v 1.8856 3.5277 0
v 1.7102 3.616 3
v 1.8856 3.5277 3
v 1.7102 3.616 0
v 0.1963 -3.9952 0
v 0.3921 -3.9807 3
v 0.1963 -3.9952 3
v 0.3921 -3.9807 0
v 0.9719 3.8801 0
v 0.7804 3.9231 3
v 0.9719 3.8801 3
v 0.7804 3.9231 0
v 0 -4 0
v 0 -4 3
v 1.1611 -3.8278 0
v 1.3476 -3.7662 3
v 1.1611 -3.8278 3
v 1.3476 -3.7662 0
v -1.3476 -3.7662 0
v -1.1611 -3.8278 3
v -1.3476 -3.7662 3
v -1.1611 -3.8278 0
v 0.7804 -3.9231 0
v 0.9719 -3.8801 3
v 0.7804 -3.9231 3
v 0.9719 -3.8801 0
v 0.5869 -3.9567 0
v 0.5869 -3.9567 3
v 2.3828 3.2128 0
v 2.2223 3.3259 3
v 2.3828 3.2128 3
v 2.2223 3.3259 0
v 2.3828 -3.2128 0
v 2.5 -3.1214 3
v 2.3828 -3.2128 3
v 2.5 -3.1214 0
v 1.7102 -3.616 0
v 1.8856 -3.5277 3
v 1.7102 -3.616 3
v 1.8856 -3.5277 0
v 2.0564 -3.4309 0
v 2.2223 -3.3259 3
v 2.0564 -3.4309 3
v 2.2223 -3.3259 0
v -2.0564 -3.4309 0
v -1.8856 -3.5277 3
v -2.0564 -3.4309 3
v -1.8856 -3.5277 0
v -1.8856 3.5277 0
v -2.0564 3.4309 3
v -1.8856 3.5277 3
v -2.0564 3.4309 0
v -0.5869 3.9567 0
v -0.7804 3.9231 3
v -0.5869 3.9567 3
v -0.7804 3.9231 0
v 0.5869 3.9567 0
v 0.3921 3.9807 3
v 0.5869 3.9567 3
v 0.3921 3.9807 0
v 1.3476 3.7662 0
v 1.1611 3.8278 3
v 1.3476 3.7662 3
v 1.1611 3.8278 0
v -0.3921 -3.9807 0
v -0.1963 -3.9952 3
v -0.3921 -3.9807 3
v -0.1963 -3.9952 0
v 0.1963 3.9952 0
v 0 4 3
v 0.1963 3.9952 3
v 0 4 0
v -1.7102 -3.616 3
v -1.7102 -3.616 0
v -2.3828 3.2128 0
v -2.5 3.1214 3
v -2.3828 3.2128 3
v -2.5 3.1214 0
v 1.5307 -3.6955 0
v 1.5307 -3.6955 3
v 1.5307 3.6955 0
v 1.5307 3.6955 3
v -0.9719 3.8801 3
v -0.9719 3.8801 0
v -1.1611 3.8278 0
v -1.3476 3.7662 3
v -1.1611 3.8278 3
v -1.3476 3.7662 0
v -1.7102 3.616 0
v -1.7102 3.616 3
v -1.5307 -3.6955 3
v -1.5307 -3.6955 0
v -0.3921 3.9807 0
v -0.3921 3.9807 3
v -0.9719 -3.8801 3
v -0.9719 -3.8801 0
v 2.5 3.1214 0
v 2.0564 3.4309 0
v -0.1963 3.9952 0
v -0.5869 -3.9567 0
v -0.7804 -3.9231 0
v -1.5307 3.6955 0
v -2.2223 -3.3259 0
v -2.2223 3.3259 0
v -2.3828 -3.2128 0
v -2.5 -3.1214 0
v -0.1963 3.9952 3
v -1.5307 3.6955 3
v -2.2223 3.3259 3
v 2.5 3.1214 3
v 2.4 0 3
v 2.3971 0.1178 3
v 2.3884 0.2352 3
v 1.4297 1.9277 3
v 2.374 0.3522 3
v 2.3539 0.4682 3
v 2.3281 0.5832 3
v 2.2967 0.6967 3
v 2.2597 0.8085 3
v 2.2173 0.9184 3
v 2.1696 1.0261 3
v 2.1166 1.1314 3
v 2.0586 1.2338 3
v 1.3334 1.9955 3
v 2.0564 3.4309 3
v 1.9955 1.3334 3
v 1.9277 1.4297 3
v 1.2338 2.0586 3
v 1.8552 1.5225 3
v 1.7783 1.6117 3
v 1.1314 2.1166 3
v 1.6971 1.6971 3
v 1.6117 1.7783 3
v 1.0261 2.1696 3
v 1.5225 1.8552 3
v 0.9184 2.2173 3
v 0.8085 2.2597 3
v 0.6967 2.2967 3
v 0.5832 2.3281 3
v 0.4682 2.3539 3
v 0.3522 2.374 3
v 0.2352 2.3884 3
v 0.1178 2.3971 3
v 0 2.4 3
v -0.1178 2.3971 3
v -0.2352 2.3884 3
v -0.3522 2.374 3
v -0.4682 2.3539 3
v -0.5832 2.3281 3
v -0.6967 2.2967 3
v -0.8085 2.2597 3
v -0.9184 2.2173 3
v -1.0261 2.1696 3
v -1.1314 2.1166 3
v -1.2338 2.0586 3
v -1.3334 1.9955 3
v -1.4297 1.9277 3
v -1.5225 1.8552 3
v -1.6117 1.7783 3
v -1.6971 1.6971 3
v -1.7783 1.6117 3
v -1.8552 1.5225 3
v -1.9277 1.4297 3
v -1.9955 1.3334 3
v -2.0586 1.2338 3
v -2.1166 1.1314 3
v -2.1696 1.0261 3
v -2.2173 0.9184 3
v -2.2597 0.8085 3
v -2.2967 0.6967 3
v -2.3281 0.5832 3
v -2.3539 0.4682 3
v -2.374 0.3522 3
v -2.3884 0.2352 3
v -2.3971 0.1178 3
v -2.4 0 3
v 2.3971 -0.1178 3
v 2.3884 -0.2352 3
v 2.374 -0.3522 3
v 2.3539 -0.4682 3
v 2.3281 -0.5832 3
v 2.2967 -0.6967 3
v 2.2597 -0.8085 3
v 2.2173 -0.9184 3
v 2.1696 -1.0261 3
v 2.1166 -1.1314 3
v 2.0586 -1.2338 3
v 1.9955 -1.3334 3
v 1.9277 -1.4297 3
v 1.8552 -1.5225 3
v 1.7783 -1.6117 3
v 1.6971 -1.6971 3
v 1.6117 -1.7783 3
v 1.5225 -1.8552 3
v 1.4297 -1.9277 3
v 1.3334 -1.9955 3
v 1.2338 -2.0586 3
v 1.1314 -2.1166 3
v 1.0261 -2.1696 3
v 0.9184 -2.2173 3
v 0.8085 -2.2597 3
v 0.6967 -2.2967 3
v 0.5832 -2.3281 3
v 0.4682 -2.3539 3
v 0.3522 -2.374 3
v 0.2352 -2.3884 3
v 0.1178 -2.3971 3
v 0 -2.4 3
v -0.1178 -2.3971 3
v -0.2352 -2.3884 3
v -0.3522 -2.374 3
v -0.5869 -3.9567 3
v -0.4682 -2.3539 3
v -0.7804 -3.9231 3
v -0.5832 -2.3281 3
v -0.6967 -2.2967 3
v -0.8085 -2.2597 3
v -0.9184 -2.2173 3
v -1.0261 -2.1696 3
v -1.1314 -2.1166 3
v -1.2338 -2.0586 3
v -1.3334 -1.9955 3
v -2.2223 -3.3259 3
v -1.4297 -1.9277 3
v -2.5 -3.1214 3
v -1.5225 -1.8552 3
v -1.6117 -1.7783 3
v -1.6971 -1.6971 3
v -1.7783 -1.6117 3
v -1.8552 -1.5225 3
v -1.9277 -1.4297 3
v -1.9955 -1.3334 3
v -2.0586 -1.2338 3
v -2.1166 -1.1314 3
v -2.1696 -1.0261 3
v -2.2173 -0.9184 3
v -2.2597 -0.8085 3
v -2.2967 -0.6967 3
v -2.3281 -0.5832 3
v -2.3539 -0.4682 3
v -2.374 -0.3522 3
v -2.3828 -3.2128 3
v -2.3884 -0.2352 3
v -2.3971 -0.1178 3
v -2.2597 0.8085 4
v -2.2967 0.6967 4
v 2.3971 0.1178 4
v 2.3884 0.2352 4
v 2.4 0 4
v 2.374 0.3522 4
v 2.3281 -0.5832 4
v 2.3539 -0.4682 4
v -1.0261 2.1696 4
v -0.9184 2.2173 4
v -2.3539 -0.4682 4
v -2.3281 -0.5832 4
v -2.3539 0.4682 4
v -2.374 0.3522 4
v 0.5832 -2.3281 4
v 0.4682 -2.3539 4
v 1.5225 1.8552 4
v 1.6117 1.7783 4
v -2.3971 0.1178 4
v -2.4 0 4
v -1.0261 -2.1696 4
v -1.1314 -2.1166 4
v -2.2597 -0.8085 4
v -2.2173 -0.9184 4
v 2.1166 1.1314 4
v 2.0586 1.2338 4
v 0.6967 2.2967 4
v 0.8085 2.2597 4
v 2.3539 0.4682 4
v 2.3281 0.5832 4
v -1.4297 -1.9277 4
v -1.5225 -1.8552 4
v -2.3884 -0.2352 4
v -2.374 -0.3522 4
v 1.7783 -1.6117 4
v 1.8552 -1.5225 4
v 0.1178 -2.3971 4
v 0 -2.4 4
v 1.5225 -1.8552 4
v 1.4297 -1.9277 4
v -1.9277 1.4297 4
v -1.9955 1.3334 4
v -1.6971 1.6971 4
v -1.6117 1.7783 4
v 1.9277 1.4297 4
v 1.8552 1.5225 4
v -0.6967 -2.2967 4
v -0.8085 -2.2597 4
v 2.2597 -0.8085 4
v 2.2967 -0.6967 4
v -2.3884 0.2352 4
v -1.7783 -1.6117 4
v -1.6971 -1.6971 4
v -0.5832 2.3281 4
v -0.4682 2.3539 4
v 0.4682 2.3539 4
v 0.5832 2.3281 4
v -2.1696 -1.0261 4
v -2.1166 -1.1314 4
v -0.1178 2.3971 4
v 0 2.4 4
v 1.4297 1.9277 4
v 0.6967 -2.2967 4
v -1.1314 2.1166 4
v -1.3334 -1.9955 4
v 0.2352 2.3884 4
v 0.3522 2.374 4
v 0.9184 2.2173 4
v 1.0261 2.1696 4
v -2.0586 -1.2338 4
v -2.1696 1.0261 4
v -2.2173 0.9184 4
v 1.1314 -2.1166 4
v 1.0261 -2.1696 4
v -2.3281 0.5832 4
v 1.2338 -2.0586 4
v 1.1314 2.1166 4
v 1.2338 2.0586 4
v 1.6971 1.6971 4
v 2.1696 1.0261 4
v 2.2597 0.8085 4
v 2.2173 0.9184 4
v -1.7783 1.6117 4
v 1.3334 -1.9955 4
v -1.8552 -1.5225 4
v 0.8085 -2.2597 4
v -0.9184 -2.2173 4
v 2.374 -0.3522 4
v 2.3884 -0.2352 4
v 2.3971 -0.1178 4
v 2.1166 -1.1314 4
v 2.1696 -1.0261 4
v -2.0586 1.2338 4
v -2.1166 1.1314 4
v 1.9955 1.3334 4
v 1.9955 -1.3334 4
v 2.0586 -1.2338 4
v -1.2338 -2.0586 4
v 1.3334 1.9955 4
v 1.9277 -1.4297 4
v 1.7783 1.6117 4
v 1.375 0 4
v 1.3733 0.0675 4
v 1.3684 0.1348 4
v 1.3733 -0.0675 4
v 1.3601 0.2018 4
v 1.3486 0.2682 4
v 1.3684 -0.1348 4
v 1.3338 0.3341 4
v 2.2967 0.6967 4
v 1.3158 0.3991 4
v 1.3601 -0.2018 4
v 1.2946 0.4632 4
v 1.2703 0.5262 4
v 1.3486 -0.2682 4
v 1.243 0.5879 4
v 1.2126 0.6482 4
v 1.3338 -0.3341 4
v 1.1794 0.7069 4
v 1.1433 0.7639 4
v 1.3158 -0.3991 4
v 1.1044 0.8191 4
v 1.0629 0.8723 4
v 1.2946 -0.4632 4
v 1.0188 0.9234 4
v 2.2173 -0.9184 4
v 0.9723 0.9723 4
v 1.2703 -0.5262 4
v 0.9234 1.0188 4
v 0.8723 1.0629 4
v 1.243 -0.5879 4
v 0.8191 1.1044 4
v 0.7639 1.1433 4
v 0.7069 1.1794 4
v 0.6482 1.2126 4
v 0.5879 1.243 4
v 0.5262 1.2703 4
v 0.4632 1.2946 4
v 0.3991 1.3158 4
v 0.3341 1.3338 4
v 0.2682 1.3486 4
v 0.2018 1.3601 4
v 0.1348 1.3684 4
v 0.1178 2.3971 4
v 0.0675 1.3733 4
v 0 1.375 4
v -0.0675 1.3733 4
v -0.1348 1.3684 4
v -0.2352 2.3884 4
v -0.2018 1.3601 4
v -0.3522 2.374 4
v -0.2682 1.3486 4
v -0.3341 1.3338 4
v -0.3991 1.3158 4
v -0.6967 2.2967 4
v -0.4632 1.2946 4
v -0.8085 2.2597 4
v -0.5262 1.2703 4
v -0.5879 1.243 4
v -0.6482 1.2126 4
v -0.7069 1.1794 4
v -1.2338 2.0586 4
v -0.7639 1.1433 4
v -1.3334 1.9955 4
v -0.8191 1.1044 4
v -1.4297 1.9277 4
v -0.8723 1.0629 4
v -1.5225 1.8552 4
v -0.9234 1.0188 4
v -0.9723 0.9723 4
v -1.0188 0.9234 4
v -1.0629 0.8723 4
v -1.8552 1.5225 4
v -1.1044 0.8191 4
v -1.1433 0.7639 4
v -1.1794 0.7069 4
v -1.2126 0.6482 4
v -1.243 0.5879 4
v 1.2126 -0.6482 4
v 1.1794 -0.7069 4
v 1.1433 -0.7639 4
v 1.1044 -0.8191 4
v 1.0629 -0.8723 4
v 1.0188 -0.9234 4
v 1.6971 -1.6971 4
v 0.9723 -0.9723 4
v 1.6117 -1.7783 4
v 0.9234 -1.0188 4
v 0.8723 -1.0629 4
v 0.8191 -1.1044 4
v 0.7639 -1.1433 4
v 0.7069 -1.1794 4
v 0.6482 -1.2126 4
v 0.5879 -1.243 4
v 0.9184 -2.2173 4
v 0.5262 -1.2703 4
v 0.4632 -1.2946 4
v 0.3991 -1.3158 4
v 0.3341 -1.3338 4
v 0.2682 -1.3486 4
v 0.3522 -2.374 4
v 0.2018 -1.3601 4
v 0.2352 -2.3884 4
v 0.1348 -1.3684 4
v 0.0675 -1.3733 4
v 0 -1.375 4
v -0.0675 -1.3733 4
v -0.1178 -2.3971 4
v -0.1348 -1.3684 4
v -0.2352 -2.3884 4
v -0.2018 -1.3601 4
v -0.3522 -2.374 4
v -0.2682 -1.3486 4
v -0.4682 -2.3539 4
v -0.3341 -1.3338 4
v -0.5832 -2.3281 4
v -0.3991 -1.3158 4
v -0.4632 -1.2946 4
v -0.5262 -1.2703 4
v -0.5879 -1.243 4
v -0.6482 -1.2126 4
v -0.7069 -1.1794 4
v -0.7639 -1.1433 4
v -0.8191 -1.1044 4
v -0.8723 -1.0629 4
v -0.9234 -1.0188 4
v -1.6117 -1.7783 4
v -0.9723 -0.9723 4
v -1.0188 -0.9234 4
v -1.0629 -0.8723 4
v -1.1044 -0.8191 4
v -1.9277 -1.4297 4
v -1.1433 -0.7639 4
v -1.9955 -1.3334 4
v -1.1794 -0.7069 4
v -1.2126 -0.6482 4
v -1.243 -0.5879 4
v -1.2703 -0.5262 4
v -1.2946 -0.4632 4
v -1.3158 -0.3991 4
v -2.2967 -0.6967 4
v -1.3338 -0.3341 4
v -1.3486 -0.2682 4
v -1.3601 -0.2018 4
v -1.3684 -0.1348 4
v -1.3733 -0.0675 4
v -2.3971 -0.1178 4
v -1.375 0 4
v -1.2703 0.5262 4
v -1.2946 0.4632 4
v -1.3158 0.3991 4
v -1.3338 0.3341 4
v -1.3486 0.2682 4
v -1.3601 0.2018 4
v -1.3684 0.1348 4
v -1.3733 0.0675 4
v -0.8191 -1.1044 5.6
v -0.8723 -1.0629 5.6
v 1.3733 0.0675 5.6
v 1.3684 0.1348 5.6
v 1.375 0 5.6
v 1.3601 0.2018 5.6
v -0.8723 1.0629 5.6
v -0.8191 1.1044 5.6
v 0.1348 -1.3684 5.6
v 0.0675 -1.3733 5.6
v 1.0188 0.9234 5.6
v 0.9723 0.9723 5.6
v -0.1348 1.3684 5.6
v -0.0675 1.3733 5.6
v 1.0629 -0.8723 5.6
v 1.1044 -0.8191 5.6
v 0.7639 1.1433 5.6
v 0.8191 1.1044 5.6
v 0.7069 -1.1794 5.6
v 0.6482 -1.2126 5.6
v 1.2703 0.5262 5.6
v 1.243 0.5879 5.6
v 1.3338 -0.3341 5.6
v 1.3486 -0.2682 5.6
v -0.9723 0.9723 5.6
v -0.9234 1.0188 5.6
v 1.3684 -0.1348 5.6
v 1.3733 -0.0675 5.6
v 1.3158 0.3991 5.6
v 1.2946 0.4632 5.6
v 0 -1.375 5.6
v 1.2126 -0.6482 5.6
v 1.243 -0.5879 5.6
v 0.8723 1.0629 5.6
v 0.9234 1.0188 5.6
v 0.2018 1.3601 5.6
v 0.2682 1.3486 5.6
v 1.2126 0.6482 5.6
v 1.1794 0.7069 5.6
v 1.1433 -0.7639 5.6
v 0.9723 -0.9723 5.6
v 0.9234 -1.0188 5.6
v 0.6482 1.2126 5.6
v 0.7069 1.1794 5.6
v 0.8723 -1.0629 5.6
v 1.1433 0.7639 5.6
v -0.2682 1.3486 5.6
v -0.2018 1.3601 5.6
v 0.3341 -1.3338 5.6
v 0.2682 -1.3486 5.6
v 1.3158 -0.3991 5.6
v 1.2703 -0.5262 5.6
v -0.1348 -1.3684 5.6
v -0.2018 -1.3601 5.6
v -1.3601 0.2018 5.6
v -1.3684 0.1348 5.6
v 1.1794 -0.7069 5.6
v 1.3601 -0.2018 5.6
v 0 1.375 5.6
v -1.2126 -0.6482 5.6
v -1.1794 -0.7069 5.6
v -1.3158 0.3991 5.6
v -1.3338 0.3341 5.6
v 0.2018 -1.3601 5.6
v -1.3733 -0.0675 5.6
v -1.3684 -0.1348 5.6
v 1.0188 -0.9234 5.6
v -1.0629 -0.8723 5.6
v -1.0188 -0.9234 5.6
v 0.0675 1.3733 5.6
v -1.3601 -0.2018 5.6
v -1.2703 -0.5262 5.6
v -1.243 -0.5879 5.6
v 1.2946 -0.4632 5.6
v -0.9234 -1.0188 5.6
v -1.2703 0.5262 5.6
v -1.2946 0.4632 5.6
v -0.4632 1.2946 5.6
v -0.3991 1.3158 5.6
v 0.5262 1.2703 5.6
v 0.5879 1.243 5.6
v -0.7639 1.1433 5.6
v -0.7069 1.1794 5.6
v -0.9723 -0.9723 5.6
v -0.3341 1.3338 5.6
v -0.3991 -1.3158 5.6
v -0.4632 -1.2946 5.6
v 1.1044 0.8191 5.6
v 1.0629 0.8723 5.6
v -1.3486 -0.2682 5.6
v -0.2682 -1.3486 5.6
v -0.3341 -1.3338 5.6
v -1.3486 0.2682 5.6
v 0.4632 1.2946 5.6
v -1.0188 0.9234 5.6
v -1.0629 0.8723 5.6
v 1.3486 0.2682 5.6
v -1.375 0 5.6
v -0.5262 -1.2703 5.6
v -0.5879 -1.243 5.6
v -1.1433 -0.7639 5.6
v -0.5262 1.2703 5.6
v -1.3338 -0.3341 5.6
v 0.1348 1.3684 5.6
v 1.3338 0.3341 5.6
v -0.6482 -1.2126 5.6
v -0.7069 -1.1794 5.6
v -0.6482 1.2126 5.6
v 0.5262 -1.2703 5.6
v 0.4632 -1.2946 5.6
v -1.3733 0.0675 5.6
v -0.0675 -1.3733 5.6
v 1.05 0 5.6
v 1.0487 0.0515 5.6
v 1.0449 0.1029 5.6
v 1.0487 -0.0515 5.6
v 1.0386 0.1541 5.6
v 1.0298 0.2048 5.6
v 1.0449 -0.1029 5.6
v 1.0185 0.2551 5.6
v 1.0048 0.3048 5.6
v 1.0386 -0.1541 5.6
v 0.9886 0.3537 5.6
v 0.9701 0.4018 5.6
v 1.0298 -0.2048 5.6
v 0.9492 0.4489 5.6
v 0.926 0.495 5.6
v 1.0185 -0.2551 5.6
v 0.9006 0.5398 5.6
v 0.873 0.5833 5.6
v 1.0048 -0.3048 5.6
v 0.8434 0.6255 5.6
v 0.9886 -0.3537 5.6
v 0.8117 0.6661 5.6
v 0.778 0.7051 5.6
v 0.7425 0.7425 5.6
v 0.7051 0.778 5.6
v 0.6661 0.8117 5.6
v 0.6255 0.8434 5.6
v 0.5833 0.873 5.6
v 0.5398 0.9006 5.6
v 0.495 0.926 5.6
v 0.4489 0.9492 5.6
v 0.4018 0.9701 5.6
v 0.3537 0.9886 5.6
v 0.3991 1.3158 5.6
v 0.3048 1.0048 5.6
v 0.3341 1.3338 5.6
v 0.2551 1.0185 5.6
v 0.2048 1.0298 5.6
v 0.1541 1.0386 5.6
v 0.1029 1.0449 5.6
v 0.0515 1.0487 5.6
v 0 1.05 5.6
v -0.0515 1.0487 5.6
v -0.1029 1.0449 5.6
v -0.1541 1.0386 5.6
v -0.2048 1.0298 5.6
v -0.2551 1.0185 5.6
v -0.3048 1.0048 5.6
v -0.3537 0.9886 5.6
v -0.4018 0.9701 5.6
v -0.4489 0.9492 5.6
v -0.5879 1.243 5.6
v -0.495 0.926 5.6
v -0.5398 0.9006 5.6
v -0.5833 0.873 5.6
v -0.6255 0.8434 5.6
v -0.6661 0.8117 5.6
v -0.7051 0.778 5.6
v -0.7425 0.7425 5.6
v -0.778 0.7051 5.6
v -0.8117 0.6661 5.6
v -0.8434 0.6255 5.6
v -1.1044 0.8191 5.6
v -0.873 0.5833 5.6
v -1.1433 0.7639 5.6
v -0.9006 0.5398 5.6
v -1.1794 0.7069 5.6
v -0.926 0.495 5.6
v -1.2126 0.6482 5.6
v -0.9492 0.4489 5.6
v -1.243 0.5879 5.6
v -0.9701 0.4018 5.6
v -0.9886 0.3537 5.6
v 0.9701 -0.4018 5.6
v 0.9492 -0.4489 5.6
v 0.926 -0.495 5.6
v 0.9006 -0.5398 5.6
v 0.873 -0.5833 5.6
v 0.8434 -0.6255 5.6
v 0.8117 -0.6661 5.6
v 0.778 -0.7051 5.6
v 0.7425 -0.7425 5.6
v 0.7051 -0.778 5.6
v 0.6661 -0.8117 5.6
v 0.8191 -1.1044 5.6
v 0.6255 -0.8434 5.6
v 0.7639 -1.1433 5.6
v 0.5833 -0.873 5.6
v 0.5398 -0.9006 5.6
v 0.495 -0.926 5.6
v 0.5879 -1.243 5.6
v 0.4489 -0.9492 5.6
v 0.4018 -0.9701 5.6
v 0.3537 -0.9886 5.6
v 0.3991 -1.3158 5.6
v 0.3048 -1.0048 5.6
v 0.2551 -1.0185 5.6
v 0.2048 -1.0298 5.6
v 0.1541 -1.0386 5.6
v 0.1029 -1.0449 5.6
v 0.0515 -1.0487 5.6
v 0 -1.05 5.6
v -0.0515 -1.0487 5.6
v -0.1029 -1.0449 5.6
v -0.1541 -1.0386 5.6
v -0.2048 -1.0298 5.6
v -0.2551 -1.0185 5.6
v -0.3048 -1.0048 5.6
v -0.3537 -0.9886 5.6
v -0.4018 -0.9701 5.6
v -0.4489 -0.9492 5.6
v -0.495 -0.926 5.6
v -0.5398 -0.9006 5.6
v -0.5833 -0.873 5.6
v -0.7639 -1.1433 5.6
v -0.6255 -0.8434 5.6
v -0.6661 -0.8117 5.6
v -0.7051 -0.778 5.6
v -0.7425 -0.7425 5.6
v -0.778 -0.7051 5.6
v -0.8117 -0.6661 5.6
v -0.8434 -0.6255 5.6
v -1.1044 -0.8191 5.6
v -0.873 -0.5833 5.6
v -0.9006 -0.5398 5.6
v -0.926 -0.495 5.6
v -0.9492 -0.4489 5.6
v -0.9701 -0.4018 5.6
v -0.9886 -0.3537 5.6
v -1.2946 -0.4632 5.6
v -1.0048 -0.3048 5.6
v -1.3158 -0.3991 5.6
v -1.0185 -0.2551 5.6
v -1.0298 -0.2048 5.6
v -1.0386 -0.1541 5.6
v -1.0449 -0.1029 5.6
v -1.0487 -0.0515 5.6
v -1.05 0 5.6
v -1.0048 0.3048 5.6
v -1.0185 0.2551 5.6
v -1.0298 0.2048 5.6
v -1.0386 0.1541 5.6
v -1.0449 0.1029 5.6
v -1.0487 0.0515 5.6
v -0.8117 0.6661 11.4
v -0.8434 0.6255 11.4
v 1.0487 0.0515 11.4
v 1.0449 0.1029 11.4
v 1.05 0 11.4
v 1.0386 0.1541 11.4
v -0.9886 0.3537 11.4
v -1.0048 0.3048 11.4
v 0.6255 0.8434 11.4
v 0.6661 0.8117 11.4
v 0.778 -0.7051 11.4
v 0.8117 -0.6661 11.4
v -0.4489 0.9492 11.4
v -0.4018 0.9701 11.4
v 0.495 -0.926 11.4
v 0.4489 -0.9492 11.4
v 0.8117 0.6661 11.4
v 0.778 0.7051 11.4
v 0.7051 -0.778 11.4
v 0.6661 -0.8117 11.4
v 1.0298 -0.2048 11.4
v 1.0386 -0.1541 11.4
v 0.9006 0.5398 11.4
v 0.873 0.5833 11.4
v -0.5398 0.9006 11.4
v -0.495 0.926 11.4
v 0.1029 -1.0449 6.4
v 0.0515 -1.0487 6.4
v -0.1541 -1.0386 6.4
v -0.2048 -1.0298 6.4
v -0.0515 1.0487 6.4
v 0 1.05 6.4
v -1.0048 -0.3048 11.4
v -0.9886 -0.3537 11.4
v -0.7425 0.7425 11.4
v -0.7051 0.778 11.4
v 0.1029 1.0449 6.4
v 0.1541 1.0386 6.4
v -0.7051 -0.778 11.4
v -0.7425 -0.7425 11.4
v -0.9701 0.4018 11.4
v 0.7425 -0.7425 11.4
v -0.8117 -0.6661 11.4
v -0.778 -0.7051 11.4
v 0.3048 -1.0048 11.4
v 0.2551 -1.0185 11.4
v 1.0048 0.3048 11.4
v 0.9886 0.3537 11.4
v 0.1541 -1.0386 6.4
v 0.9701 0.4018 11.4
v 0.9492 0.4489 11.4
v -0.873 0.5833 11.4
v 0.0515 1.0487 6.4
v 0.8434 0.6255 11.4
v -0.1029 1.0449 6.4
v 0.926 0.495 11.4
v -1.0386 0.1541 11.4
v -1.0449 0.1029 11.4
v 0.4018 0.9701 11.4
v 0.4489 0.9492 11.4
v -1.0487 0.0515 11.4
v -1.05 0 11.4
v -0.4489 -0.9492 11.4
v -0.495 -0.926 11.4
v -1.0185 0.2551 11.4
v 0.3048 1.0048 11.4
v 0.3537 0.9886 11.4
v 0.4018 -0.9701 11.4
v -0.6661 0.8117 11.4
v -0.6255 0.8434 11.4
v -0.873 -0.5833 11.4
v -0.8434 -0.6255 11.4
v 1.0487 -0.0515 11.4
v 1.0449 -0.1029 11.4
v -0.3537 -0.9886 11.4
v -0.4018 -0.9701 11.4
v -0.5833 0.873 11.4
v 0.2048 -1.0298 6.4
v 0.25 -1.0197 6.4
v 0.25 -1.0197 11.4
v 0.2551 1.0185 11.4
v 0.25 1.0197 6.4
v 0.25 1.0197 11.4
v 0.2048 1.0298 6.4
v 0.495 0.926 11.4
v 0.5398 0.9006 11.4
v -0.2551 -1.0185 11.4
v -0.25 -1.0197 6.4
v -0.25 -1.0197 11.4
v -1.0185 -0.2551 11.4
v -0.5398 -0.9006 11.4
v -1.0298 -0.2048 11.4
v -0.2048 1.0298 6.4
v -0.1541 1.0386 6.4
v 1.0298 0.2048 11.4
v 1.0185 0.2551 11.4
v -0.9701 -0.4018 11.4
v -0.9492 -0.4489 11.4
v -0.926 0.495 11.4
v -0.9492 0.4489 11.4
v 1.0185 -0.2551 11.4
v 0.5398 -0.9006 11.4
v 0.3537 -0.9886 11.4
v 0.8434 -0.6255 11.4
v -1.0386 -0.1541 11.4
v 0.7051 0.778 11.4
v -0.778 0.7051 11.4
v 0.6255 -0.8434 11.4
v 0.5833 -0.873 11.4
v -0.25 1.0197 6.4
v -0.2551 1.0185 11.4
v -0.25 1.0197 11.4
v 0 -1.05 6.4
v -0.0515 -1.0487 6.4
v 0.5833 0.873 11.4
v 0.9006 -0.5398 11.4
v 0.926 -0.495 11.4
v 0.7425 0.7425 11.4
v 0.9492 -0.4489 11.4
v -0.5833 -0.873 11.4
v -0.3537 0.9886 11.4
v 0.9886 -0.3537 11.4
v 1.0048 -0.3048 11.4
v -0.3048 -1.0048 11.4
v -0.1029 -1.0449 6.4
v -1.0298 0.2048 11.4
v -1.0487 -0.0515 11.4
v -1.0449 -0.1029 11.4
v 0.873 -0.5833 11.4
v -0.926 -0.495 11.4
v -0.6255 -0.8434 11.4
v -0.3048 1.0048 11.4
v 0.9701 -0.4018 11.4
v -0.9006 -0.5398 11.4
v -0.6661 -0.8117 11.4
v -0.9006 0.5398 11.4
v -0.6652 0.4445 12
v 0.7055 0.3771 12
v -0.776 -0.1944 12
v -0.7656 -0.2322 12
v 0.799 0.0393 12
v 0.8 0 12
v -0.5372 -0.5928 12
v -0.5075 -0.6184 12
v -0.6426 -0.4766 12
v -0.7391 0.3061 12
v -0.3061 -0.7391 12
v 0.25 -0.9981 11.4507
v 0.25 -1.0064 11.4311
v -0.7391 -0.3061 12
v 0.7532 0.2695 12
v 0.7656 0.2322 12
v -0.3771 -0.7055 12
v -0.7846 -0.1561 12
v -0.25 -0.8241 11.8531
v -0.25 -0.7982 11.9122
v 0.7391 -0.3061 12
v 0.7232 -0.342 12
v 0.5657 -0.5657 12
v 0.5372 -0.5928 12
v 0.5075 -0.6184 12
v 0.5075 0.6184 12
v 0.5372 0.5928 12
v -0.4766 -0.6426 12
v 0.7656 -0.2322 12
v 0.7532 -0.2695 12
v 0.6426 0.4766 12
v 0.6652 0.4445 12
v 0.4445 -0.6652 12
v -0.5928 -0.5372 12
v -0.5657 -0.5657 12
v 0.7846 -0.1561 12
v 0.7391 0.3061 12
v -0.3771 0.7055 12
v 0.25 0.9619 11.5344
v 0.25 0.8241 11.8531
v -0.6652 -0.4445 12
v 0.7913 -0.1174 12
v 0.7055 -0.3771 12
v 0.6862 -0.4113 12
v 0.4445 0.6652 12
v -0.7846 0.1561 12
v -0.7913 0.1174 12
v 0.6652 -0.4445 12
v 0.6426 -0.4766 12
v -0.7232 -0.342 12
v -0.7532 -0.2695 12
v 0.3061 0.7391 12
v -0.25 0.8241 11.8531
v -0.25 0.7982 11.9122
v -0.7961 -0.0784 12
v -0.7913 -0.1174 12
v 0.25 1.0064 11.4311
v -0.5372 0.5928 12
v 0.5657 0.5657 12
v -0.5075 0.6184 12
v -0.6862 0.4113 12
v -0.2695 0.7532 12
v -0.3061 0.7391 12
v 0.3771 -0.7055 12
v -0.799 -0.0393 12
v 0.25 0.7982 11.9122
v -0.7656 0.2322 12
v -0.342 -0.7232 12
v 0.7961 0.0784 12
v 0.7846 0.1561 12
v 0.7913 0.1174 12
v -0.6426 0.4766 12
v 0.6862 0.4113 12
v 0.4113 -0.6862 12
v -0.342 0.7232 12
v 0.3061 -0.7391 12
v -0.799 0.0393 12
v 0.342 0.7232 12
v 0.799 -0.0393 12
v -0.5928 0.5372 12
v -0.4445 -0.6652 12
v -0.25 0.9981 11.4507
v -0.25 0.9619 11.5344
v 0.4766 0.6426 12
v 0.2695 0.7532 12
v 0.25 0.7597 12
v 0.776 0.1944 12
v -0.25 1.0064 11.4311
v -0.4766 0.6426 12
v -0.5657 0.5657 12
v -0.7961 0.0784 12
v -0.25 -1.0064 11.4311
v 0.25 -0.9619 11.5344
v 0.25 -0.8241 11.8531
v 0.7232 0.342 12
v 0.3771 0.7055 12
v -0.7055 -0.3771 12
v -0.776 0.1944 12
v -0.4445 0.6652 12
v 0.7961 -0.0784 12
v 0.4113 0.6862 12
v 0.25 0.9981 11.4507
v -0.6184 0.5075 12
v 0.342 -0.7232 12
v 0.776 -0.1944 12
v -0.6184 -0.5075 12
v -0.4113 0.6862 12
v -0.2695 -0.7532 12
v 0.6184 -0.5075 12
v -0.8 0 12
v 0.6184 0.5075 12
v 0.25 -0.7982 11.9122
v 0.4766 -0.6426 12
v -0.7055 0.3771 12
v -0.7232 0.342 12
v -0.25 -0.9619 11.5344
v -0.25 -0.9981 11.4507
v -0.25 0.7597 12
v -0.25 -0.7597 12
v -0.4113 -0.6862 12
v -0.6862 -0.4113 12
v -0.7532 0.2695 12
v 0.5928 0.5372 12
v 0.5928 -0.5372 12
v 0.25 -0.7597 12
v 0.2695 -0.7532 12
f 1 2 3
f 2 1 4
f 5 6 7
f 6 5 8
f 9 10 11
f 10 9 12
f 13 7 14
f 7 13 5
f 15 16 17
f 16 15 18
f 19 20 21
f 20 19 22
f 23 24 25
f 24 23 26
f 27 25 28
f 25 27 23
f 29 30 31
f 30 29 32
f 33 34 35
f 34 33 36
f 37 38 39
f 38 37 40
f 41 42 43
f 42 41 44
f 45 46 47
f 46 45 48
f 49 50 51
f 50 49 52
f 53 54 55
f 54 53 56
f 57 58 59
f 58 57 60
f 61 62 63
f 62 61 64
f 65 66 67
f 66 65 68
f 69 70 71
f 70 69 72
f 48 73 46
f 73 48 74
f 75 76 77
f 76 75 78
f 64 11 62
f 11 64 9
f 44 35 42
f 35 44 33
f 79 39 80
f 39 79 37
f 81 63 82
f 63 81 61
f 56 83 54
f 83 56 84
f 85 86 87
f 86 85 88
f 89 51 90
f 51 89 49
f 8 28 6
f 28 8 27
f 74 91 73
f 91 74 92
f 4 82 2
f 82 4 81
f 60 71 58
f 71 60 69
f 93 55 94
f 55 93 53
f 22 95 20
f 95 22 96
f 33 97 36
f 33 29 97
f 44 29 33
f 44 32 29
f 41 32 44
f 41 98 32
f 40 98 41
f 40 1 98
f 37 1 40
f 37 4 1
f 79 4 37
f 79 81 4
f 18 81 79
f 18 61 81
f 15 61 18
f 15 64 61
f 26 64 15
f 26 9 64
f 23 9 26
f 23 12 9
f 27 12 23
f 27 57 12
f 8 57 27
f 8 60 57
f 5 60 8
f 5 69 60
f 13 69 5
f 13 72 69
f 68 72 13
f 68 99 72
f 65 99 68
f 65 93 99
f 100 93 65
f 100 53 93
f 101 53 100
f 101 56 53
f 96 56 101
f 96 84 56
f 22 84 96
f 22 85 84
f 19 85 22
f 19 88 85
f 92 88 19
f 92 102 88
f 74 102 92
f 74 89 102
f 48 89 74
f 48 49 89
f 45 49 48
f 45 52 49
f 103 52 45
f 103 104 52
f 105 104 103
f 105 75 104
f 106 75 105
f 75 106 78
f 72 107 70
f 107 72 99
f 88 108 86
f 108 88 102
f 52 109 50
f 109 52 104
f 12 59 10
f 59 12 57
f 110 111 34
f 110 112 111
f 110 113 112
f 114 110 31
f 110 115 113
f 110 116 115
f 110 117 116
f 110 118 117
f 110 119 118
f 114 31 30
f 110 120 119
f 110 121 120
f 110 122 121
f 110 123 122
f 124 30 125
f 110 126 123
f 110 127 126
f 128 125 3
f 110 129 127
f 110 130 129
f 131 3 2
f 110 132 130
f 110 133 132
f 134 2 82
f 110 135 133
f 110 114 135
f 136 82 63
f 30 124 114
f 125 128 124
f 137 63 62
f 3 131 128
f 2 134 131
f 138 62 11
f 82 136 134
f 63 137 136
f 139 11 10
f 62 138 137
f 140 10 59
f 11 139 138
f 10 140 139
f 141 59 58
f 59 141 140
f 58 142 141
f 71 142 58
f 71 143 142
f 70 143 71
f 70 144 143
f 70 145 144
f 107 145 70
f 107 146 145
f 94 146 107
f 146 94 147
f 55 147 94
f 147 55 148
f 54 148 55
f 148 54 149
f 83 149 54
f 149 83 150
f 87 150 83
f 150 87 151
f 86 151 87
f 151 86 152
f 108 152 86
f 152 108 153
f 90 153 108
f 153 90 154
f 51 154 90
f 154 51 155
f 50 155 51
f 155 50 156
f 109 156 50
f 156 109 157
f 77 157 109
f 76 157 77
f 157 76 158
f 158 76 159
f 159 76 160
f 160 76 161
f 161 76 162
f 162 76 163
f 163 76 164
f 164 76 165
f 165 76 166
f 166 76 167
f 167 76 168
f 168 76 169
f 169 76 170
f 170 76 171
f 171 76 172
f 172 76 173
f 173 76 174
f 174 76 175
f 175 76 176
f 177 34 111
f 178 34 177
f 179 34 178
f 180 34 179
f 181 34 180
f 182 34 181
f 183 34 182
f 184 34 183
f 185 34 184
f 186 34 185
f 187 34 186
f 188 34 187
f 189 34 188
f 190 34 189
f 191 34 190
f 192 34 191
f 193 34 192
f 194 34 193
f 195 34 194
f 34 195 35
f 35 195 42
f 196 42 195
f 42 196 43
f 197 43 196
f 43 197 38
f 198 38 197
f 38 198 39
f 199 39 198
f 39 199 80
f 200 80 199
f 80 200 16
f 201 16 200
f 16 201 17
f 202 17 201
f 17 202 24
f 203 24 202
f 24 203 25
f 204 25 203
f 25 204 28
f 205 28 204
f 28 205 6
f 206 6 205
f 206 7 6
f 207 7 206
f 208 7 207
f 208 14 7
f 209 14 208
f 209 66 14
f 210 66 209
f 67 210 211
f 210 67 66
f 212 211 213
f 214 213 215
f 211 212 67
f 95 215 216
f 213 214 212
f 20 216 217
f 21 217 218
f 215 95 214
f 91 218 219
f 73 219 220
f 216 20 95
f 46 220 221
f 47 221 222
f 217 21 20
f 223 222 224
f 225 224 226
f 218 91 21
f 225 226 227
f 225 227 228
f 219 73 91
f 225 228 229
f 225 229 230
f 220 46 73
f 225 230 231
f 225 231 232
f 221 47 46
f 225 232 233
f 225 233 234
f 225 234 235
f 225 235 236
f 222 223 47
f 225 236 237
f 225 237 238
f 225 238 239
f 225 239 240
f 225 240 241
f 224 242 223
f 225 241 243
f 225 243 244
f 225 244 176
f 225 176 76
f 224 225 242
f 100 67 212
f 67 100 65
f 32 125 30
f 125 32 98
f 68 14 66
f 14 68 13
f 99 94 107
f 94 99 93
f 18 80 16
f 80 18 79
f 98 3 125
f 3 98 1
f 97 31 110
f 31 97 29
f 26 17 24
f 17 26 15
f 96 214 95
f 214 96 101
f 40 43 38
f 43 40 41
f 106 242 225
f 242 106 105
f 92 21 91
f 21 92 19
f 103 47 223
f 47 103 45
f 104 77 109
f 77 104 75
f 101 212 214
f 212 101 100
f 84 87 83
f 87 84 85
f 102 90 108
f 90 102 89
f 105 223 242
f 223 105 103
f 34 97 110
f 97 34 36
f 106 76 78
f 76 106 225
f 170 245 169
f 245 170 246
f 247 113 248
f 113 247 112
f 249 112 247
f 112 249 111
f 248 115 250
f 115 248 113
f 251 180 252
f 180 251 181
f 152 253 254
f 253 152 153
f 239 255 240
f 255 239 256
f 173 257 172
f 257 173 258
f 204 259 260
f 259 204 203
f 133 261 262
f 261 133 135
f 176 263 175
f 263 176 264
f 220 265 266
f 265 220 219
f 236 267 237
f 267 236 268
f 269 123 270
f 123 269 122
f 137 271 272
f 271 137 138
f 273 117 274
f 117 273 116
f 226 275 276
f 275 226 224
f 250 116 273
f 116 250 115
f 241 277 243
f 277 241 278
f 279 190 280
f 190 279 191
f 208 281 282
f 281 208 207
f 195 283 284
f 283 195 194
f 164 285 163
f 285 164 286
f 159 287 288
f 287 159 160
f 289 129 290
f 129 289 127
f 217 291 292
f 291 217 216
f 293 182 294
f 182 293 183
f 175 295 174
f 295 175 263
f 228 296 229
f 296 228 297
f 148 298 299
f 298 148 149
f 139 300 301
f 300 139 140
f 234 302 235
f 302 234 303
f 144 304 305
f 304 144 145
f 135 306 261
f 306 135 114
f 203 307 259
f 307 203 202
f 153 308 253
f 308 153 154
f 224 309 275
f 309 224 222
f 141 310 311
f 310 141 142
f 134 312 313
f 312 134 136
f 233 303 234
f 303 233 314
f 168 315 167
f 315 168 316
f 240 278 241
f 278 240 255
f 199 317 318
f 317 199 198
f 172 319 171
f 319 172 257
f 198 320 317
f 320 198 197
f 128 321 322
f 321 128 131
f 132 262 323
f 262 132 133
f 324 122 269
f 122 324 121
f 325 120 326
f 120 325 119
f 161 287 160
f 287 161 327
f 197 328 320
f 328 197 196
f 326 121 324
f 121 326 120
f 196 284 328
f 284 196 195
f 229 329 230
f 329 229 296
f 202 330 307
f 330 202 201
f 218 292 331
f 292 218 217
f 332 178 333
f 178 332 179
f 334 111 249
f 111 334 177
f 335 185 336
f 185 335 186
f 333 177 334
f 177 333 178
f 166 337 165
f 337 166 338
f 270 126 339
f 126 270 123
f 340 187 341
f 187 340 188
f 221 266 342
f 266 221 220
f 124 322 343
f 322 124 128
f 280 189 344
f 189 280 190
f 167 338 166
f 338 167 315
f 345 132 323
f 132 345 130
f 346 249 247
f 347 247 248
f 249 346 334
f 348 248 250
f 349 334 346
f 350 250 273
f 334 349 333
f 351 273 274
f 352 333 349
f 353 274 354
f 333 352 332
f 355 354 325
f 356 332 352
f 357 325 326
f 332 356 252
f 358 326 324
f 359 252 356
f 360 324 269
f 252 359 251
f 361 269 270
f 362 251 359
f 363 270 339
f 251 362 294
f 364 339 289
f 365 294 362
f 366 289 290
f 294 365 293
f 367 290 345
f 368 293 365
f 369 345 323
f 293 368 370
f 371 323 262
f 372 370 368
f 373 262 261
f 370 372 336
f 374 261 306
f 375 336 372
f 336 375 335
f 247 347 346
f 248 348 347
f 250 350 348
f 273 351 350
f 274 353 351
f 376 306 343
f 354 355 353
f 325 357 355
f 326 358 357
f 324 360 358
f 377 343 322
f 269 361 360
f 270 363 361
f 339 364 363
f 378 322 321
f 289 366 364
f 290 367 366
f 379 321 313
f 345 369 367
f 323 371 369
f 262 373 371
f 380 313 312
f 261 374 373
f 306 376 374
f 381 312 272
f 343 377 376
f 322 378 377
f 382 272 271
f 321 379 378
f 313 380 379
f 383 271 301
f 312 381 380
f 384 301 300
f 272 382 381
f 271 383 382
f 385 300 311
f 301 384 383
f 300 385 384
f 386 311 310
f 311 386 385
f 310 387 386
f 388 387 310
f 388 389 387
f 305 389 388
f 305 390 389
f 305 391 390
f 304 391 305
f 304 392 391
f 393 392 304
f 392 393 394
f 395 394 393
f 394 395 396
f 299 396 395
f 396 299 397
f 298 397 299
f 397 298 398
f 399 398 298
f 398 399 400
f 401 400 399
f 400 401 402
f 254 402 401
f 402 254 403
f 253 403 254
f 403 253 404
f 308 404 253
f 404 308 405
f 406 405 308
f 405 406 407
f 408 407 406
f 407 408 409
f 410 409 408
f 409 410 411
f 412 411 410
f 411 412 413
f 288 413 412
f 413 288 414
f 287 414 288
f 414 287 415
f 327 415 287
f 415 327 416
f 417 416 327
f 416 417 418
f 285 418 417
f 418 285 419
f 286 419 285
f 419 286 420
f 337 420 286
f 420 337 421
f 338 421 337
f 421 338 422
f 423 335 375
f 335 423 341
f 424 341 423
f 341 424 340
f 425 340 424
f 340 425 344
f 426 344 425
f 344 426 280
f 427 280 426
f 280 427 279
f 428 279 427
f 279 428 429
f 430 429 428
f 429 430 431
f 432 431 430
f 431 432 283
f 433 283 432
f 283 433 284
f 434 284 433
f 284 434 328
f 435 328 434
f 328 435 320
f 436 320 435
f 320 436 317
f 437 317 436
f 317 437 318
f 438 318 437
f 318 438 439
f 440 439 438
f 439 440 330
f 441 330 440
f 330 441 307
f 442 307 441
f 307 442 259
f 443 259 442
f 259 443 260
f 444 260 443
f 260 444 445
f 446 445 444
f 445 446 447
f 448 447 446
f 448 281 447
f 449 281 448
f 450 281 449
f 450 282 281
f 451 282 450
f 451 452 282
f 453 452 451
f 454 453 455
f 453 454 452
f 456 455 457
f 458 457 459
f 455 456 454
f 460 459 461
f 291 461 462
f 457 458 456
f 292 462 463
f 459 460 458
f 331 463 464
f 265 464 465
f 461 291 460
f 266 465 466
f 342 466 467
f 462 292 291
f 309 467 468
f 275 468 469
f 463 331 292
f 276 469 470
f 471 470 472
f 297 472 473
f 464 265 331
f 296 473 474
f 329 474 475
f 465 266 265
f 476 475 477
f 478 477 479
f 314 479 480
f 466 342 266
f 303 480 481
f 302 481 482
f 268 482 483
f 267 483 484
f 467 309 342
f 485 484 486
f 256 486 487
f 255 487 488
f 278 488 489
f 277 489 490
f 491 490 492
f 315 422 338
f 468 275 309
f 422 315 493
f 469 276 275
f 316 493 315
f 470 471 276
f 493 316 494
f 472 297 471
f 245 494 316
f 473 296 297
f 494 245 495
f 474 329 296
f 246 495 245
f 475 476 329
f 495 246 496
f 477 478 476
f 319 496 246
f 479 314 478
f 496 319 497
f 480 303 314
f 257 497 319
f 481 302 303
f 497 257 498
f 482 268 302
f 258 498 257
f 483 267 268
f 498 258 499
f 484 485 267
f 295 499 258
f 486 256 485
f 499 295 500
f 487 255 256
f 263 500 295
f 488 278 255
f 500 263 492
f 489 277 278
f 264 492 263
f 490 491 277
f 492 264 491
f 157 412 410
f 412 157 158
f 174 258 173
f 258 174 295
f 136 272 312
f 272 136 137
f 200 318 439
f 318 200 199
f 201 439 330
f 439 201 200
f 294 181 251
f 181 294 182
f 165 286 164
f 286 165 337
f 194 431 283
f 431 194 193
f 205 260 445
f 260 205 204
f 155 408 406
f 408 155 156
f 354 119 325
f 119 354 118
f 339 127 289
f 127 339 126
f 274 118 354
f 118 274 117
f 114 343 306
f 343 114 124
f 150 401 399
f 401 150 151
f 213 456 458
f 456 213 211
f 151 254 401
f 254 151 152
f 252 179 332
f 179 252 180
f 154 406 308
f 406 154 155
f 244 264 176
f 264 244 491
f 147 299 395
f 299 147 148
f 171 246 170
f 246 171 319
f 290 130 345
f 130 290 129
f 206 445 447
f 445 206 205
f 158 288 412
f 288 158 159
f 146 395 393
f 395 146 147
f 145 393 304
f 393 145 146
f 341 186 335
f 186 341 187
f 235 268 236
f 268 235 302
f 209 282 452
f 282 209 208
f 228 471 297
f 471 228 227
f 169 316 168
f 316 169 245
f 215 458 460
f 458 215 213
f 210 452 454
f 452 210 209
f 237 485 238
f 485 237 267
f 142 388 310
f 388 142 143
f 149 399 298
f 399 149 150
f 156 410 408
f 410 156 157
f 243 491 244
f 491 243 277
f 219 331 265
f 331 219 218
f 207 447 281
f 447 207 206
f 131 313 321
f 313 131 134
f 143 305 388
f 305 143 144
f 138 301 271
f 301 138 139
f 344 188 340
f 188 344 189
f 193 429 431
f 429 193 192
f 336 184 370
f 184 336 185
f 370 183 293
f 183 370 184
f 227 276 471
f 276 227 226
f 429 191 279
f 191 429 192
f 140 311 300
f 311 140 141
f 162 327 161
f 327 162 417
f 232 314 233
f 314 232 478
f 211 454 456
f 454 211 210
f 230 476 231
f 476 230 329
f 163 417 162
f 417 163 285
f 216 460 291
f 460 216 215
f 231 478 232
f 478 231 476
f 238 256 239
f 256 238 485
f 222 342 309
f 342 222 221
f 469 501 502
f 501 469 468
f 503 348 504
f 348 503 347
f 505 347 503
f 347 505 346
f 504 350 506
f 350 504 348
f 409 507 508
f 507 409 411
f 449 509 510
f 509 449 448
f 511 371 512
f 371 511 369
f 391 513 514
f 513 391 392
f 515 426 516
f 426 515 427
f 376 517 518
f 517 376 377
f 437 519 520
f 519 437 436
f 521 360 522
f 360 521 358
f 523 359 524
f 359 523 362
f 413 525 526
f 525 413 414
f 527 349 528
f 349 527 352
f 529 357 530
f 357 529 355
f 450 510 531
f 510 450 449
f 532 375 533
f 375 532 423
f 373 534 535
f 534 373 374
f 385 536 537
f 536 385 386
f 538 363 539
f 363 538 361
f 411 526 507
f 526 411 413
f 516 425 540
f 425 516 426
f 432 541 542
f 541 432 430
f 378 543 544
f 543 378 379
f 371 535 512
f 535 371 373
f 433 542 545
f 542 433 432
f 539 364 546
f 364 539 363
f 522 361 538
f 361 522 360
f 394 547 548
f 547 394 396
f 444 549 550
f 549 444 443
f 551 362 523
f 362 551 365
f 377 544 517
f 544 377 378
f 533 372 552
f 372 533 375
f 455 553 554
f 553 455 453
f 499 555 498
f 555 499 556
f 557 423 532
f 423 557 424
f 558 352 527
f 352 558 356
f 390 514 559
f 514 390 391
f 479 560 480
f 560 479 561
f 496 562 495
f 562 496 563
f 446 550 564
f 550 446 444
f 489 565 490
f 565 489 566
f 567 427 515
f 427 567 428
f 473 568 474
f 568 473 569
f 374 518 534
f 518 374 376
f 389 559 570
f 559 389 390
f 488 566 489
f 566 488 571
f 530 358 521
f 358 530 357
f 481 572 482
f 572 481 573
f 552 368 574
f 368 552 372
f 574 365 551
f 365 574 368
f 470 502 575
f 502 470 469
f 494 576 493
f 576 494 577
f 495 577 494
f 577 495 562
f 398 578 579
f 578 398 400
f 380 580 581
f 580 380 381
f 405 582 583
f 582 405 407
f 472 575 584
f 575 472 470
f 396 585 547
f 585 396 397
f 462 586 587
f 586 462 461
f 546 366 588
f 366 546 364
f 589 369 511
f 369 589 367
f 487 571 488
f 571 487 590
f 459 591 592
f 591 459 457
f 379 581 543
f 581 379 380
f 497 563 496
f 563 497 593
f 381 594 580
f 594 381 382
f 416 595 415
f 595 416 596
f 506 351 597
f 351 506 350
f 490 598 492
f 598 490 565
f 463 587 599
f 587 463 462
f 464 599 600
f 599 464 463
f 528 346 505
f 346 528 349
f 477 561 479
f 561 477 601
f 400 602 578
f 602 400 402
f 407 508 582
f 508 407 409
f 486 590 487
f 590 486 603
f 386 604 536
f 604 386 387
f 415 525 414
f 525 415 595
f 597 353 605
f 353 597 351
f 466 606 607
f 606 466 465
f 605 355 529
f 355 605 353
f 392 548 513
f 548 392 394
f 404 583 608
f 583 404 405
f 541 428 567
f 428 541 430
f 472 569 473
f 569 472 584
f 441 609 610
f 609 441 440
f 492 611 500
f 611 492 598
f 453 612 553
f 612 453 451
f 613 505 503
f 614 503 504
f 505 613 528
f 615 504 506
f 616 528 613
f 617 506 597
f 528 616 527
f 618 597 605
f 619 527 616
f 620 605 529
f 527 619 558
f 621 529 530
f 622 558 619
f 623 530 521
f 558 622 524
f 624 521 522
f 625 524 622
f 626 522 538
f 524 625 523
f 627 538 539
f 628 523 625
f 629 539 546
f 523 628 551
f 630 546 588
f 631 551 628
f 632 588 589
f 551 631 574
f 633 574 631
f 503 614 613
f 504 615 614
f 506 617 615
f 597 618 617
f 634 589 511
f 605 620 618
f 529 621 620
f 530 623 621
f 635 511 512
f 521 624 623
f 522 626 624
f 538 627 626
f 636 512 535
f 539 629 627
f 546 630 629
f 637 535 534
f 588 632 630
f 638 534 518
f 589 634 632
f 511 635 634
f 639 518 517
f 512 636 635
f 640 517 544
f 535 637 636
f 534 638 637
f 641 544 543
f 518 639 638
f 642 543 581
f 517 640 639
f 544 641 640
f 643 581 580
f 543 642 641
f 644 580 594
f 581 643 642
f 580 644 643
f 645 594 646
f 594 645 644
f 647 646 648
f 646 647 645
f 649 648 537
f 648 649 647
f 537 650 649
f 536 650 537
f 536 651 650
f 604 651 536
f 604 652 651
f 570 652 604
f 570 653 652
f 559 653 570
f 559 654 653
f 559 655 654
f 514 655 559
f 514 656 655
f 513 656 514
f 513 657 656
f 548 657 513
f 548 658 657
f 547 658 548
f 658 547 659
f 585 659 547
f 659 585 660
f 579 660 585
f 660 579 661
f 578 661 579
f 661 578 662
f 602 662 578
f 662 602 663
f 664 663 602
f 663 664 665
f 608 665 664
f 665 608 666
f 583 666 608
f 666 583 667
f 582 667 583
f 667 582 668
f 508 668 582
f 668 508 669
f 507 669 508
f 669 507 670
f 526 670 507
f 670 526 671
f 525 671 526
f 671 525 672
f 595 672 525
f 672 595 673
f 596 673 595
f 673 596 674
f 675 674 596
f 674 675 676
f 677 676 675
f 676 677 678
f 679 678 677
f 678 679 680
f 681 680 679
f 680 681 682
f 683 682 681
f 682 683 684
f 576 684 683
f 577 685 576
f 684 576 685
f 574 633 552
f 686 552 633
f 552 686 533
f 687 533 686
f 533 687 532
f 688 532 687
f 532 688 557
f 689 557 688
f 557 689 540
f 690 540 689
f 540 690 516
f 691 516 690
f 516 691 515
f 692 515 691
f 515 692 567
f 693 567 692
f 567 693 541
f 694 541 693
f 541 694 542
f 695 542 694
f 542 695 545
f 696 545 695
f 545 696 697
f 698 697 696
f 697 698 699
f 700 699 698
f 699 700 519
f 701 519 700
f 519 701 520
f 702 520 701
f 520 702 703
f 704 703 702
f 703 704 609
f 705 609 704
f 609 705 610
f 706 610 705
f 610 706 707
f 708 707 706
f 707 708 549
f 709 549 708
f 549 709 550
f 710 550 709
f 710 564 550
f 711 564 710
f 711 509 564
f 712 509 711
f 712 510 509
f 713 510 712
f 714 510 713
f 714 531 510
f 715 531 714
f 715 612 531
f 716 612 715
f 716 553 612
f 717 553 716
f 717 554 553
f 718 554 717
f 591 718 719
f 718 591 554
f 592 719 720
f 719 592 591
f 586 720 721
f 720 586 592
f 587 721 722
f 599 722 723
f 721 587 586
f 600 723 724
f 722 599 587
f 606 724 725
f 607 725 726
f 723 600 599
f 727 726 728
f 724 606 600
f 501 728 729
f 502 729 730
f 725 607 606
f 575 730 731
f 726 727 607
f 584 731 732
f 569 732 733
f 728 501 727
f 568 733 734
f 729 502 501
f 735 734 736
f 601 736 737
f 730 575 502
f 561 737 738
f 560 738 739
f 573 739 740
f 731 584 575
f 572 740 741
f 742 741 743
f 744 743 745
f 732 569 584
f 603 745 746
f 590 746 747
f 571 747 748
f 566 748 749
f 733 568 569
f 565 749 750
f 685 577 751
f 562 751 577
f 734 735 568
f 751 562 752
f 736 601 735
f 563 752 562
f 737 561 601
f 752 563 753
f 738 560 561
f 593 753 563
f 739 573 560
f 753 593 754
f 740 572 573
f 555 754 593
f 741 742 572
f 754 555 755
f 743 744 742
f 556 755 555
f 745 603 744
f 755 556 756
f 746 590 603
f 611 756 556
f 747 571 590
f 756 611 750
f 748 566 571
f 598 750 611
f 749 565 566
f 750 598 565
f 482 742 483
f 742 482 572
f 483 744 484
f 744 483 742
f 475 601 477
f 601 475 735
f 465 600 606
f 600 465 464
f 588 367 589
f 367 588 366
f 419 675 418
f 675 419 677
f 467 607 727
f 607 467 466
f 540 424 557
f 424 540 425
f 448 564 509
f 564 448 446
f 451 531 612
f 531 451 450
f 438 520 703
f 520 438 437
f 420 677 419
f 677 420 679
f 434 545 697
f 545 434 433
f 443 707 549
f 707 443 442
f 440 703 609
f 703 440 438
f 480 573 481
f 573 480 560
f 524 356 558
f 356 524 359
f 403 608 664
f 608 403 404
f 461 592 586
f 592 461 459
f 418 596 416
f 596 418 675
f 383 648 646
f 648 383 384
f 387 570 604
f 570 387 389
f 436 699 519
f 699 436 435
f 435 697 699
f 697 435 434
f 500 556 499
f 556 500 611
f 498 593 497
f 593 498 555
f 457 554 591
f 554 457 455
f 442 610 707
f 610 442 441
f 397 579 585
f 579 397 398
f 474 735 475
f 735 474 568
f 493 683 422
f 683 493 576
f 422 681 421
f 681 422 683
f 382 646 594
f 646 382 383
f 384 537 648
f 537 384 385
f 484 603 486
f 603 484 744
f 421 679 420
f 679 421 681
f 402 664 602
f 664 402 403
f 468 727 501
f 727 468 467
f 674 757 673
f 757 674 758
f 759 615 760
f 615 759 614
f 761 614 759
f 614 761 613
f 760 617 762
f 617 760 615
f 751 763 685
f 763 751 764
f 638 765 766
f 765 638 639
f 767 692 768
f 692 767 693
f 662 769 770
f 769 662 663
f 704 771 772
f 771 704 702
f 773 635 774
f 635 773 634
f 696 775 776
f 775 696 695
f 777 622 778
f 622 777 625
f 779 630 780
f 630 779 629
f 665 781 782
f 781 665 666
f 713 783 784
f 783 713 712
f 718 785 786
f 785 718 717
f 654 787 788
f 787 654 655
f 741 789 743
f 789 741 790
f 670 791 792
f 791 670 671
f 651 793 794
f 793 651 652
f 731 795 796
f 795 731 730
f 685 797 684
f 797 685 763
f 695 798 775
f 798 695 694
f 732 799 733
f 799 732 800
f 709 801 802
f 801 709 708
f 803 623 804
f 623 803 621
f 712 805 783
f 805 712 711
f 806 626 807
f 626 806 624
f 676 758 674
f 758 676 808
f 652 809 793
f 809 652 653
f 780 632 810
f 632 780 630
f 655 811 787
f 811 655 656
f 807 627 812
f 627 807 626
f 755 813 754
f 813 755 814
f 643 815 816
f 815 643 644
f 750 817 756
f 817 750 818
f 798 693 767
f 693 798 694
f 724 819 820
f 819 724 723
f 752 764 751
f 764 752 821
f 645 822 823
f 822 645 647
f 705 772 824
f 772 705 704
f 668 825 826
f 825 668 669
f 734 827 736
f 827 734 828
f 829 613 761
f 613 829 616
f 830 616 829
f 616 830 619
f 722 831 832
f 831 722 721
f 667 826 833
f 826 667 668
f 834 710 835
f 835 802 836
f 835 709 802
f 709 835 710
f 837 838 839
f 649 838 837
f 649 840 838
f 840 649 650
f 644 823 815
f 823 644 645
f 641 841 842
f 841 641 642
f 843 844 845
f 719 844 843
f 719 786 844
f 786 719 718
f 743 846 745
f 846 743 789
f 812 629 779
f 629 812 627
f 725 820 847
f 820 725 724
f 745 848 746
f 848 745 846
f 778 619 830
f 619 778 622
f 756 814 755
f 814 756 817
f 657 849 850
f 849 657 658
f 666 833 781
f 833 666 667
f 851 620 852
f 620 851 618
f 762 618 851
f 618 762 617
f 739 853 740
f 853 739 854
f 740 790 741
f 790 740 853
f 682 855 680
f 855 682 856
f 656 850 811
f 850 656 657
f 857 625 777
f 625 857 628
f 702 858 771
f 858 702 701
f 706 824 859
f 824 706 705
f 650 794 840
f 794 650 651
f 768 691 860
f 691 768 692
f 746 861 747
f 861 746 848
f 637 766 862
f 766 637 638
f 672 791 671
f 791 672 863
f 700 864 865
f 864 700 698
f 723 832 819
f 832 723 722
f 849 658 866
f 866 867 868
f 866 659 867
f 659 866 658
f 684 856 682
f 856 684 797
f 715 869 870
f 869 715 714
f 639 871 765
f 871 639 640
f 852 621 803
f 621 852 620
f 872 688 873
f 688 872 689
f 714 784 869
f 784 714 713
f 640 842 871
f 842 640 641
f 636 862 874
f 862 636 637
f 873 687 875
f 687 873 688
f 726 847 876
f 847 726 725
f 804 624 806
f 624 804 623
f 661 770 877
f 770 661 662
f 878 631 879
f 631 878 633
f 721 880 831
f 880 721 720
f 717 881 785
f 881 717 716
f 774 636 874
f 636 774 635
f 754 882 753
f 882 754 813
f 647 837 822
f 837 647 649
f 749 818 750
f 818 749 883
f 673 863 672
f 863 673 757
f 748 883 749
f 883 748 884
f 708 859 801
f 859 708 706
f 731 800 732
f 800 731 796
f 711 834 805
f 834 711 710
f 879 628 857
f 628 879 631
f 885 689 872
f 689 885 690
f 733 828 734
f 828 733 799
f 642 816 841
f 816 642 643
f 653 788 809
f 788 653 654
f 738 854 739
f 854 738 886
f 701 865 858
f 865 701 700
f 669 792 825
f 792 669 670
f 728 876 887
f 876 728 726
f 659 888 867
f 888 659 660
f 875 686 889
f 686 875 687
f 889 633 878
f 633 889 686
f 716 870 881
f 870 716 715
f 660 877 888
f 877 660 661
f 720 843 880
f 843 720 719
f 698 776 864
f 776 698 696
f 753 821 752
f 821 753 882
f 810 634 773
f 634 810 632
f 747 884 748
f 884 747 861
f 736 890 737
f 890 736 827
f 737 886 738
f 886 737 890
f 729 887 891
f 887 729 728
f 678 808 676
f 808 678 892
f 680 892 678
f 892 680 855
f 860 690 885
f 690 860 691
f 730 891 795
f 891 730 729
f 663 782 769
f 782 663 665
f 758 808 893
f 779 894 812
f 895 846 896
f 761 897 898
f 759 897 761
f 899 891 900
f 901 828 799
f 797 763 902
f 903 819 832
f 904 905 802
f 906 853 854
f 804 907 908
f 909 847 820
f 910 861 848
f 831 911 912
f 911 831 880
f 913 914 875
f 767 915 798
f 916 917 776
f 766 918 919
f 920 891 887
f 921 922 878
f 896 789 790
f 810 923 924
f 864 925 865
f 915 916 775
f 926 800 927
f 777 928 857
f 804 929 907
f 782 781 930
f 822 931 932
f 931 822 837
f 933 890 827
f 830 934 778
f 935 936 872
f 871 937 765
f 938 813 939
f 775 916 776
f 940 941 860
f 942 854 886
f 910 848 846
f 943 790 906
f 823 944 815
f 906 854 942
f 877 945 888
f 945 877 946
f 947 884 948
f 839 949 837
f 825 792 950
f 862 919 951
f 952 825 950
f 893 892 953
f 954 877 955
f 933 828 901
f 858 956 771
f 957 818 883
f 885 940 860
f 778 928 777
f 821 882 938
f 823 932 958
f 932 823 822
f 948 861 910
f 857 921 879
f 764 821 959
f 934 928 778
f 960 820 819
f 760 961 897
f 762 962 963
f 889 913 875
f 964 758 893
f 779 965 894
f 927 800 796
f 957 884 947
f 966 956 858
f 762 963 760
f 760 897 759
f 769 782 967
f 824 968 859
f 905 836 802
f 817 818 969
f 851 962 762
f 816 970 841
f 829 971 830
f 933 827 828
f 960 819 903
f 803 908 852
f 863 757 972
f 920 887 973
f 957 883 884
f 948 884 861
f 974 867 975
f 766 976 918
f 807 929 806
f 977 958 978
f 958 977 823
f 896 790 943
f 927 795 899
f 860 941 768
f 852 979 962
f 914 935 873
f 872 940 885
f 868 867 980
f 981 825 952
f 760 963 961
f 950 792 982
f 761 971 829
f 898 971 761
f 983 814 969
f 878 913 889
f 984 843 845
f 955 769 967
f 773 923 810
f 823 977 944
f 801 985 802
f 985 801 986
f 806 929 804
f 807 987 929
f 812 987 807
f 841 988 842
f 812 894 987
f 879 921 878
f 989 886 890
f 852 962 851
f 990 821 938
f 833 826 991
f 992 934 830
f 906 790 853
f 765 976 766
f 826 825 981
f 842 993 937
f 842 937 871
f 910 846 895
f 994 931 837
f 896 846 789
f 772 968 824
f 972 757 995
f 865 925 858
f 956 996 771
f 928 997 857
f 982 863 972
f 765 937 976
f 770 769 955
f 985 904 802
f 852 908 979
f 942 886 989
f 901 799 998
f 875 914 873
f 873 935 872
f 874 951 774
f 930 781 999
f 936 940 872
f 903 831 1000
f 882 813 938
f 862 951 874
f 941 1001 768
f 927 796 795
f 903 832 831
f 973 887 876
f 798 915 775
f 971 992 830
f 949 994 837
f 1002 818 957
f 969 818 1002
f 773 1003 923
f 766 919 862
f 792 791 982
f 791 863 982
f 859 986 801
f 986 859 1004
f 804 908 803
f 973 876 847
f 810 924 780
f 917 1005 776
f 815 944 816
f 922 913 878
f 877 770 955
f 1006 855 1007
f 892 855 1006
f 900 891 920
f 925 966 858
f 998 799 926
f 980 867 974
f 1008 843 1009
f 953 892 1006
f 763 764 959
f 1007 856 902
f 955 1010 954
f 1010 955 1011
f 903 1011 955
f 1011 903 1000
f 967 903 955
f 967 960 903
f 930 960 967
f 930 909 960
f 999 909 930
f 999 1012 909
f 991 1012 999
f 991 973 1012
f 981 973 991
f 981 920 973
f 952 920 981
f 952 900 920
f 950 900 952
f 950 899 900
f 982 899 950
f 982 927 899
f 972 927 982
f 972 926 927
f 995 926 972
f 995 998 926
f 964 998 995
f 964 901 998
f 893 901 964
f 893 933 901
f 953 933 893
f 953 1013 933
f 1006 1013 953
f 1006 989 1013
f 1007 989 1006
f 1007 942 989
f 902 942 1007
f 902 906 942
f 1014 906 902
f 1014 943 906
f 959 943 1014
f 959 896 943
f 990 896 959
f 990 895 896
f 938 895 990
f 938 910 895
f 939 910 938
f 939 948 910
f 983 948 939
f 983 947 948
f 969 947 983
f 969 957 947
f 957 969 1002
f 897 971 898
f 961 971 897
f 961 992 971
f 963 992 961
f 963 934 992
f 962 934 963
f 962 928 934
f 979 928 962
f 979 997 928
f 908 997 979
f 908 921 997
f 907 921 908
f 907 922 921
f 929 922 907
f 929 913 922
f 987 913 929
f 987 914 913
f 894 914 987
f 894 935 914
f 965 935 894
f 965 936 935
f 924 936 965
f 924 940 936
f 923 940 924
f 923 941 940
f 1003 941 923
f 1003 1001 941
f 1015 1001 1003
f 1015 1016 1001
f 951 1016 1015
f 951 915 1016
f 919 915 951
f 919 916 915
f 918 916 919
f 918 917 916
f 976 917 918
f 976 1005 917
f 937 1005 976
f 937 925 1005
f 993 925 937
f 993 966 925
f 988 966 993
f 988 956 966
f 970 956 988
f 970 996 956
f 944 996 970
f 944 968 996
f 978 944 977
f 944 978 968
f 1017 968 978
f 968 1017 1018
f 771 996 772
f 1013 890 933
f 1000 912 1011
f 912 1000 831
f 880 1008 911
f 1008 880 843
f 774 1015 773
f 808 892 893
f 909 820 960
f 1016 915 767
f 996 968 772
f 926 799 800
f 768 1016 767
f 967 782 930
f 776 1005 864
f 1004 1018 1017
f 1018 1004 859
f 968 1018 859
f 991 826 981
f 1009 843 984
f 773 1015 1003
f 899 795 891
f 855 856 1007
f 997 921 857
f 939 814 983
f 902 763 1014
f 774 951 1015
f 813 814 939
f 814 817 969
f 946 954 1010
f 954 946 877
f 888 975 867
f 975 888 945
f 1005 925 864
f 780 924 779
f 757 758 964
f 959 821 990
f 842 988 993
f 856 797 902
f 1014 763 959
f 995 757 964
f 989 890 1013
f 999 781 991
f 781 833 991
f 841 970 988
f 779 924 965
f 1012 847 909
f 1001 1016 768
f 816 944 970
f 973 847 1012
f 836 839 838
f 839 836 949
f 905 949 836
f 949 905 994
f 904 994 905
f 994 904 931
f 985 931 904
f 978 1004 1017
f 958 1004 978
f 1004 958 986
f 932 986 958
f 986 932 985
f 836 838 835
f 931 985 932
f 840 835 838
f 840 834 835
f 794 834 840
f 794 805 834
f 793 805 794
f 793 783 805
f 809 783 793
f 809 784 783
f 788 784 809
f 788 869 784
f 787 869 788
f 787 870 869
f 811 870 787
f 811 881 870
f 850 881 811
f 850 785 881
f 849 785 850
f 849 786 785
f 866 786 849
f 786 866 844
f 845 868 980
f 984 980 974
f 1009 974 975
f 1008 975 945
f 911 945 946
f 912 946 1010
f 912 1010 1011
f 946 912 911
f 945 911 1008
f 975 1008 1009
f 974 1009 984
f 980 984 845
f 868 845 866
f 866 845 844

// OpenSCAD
// motor_gear_38_oneway_gear.stl / cover.stl 専用の印刷ピン試作。
// 元設計はM2.5樹脂用ねじ。ギア穴φ2.2、蓋穴φ2.9、蓋厚1.8mm。
// 3本使用。大きな頭を下に印刷。ギア・蓋の変更は不要。
// 差込み長8mm、ギアへの挿入6.2mm、穴底まで0.8mmの余裕。
// まず1本で確認。保持は摩擦頼みで、ねじと同等の保持力はない。
// 緩く抜ける場合は使用せず、shaft_dを少し増やして再印刷する。
// 6個鼓形版のφ3.1ピンとは互換性なし。
shaft_d = 2.1; // φ2.2の既存穴へ入りやすさを優先。保持力は実物で確認。
cover_guide_d = 2.75;
cover_guide_h = 1.6;
head_h = 4;
grip_h = 3;
insert_h = 8;
tip_h = 0.6;
$fn = 128;
eps = 0.01;
assert(shaft_d>1.5 && shaft_d<cover_guide_d);
difference() {
 union() {
  intersection() {
   cylinder(d=8,h=grip_h);
   translate([-2.5,-4,0]) cube([5,8,grip_h]);
  }
  translate([0,0,grip_h-eps]) cylinder(d=4.8,h=head_h-grip_h+eps);
  translate([0,0,head_h-eps]) cylinder(d=cover_guide_d,h=cover_guide_h+eps);
  translate([0,0,head_h+cover_guide_h-eps]) cylinder(d=shaft_d,h=insert_h-cover_guide_h-tip_h+eps);
  translate([0,0,head_h+insert_h-tip_h]) cylinder(d1=shaft_d,d2=shaft_d-0.5,h=tip_h);
 }
 translate([-0.25,-2,head_h+cover_guide_h+0.8]) cube([0.5,4,insert_h]);
}
